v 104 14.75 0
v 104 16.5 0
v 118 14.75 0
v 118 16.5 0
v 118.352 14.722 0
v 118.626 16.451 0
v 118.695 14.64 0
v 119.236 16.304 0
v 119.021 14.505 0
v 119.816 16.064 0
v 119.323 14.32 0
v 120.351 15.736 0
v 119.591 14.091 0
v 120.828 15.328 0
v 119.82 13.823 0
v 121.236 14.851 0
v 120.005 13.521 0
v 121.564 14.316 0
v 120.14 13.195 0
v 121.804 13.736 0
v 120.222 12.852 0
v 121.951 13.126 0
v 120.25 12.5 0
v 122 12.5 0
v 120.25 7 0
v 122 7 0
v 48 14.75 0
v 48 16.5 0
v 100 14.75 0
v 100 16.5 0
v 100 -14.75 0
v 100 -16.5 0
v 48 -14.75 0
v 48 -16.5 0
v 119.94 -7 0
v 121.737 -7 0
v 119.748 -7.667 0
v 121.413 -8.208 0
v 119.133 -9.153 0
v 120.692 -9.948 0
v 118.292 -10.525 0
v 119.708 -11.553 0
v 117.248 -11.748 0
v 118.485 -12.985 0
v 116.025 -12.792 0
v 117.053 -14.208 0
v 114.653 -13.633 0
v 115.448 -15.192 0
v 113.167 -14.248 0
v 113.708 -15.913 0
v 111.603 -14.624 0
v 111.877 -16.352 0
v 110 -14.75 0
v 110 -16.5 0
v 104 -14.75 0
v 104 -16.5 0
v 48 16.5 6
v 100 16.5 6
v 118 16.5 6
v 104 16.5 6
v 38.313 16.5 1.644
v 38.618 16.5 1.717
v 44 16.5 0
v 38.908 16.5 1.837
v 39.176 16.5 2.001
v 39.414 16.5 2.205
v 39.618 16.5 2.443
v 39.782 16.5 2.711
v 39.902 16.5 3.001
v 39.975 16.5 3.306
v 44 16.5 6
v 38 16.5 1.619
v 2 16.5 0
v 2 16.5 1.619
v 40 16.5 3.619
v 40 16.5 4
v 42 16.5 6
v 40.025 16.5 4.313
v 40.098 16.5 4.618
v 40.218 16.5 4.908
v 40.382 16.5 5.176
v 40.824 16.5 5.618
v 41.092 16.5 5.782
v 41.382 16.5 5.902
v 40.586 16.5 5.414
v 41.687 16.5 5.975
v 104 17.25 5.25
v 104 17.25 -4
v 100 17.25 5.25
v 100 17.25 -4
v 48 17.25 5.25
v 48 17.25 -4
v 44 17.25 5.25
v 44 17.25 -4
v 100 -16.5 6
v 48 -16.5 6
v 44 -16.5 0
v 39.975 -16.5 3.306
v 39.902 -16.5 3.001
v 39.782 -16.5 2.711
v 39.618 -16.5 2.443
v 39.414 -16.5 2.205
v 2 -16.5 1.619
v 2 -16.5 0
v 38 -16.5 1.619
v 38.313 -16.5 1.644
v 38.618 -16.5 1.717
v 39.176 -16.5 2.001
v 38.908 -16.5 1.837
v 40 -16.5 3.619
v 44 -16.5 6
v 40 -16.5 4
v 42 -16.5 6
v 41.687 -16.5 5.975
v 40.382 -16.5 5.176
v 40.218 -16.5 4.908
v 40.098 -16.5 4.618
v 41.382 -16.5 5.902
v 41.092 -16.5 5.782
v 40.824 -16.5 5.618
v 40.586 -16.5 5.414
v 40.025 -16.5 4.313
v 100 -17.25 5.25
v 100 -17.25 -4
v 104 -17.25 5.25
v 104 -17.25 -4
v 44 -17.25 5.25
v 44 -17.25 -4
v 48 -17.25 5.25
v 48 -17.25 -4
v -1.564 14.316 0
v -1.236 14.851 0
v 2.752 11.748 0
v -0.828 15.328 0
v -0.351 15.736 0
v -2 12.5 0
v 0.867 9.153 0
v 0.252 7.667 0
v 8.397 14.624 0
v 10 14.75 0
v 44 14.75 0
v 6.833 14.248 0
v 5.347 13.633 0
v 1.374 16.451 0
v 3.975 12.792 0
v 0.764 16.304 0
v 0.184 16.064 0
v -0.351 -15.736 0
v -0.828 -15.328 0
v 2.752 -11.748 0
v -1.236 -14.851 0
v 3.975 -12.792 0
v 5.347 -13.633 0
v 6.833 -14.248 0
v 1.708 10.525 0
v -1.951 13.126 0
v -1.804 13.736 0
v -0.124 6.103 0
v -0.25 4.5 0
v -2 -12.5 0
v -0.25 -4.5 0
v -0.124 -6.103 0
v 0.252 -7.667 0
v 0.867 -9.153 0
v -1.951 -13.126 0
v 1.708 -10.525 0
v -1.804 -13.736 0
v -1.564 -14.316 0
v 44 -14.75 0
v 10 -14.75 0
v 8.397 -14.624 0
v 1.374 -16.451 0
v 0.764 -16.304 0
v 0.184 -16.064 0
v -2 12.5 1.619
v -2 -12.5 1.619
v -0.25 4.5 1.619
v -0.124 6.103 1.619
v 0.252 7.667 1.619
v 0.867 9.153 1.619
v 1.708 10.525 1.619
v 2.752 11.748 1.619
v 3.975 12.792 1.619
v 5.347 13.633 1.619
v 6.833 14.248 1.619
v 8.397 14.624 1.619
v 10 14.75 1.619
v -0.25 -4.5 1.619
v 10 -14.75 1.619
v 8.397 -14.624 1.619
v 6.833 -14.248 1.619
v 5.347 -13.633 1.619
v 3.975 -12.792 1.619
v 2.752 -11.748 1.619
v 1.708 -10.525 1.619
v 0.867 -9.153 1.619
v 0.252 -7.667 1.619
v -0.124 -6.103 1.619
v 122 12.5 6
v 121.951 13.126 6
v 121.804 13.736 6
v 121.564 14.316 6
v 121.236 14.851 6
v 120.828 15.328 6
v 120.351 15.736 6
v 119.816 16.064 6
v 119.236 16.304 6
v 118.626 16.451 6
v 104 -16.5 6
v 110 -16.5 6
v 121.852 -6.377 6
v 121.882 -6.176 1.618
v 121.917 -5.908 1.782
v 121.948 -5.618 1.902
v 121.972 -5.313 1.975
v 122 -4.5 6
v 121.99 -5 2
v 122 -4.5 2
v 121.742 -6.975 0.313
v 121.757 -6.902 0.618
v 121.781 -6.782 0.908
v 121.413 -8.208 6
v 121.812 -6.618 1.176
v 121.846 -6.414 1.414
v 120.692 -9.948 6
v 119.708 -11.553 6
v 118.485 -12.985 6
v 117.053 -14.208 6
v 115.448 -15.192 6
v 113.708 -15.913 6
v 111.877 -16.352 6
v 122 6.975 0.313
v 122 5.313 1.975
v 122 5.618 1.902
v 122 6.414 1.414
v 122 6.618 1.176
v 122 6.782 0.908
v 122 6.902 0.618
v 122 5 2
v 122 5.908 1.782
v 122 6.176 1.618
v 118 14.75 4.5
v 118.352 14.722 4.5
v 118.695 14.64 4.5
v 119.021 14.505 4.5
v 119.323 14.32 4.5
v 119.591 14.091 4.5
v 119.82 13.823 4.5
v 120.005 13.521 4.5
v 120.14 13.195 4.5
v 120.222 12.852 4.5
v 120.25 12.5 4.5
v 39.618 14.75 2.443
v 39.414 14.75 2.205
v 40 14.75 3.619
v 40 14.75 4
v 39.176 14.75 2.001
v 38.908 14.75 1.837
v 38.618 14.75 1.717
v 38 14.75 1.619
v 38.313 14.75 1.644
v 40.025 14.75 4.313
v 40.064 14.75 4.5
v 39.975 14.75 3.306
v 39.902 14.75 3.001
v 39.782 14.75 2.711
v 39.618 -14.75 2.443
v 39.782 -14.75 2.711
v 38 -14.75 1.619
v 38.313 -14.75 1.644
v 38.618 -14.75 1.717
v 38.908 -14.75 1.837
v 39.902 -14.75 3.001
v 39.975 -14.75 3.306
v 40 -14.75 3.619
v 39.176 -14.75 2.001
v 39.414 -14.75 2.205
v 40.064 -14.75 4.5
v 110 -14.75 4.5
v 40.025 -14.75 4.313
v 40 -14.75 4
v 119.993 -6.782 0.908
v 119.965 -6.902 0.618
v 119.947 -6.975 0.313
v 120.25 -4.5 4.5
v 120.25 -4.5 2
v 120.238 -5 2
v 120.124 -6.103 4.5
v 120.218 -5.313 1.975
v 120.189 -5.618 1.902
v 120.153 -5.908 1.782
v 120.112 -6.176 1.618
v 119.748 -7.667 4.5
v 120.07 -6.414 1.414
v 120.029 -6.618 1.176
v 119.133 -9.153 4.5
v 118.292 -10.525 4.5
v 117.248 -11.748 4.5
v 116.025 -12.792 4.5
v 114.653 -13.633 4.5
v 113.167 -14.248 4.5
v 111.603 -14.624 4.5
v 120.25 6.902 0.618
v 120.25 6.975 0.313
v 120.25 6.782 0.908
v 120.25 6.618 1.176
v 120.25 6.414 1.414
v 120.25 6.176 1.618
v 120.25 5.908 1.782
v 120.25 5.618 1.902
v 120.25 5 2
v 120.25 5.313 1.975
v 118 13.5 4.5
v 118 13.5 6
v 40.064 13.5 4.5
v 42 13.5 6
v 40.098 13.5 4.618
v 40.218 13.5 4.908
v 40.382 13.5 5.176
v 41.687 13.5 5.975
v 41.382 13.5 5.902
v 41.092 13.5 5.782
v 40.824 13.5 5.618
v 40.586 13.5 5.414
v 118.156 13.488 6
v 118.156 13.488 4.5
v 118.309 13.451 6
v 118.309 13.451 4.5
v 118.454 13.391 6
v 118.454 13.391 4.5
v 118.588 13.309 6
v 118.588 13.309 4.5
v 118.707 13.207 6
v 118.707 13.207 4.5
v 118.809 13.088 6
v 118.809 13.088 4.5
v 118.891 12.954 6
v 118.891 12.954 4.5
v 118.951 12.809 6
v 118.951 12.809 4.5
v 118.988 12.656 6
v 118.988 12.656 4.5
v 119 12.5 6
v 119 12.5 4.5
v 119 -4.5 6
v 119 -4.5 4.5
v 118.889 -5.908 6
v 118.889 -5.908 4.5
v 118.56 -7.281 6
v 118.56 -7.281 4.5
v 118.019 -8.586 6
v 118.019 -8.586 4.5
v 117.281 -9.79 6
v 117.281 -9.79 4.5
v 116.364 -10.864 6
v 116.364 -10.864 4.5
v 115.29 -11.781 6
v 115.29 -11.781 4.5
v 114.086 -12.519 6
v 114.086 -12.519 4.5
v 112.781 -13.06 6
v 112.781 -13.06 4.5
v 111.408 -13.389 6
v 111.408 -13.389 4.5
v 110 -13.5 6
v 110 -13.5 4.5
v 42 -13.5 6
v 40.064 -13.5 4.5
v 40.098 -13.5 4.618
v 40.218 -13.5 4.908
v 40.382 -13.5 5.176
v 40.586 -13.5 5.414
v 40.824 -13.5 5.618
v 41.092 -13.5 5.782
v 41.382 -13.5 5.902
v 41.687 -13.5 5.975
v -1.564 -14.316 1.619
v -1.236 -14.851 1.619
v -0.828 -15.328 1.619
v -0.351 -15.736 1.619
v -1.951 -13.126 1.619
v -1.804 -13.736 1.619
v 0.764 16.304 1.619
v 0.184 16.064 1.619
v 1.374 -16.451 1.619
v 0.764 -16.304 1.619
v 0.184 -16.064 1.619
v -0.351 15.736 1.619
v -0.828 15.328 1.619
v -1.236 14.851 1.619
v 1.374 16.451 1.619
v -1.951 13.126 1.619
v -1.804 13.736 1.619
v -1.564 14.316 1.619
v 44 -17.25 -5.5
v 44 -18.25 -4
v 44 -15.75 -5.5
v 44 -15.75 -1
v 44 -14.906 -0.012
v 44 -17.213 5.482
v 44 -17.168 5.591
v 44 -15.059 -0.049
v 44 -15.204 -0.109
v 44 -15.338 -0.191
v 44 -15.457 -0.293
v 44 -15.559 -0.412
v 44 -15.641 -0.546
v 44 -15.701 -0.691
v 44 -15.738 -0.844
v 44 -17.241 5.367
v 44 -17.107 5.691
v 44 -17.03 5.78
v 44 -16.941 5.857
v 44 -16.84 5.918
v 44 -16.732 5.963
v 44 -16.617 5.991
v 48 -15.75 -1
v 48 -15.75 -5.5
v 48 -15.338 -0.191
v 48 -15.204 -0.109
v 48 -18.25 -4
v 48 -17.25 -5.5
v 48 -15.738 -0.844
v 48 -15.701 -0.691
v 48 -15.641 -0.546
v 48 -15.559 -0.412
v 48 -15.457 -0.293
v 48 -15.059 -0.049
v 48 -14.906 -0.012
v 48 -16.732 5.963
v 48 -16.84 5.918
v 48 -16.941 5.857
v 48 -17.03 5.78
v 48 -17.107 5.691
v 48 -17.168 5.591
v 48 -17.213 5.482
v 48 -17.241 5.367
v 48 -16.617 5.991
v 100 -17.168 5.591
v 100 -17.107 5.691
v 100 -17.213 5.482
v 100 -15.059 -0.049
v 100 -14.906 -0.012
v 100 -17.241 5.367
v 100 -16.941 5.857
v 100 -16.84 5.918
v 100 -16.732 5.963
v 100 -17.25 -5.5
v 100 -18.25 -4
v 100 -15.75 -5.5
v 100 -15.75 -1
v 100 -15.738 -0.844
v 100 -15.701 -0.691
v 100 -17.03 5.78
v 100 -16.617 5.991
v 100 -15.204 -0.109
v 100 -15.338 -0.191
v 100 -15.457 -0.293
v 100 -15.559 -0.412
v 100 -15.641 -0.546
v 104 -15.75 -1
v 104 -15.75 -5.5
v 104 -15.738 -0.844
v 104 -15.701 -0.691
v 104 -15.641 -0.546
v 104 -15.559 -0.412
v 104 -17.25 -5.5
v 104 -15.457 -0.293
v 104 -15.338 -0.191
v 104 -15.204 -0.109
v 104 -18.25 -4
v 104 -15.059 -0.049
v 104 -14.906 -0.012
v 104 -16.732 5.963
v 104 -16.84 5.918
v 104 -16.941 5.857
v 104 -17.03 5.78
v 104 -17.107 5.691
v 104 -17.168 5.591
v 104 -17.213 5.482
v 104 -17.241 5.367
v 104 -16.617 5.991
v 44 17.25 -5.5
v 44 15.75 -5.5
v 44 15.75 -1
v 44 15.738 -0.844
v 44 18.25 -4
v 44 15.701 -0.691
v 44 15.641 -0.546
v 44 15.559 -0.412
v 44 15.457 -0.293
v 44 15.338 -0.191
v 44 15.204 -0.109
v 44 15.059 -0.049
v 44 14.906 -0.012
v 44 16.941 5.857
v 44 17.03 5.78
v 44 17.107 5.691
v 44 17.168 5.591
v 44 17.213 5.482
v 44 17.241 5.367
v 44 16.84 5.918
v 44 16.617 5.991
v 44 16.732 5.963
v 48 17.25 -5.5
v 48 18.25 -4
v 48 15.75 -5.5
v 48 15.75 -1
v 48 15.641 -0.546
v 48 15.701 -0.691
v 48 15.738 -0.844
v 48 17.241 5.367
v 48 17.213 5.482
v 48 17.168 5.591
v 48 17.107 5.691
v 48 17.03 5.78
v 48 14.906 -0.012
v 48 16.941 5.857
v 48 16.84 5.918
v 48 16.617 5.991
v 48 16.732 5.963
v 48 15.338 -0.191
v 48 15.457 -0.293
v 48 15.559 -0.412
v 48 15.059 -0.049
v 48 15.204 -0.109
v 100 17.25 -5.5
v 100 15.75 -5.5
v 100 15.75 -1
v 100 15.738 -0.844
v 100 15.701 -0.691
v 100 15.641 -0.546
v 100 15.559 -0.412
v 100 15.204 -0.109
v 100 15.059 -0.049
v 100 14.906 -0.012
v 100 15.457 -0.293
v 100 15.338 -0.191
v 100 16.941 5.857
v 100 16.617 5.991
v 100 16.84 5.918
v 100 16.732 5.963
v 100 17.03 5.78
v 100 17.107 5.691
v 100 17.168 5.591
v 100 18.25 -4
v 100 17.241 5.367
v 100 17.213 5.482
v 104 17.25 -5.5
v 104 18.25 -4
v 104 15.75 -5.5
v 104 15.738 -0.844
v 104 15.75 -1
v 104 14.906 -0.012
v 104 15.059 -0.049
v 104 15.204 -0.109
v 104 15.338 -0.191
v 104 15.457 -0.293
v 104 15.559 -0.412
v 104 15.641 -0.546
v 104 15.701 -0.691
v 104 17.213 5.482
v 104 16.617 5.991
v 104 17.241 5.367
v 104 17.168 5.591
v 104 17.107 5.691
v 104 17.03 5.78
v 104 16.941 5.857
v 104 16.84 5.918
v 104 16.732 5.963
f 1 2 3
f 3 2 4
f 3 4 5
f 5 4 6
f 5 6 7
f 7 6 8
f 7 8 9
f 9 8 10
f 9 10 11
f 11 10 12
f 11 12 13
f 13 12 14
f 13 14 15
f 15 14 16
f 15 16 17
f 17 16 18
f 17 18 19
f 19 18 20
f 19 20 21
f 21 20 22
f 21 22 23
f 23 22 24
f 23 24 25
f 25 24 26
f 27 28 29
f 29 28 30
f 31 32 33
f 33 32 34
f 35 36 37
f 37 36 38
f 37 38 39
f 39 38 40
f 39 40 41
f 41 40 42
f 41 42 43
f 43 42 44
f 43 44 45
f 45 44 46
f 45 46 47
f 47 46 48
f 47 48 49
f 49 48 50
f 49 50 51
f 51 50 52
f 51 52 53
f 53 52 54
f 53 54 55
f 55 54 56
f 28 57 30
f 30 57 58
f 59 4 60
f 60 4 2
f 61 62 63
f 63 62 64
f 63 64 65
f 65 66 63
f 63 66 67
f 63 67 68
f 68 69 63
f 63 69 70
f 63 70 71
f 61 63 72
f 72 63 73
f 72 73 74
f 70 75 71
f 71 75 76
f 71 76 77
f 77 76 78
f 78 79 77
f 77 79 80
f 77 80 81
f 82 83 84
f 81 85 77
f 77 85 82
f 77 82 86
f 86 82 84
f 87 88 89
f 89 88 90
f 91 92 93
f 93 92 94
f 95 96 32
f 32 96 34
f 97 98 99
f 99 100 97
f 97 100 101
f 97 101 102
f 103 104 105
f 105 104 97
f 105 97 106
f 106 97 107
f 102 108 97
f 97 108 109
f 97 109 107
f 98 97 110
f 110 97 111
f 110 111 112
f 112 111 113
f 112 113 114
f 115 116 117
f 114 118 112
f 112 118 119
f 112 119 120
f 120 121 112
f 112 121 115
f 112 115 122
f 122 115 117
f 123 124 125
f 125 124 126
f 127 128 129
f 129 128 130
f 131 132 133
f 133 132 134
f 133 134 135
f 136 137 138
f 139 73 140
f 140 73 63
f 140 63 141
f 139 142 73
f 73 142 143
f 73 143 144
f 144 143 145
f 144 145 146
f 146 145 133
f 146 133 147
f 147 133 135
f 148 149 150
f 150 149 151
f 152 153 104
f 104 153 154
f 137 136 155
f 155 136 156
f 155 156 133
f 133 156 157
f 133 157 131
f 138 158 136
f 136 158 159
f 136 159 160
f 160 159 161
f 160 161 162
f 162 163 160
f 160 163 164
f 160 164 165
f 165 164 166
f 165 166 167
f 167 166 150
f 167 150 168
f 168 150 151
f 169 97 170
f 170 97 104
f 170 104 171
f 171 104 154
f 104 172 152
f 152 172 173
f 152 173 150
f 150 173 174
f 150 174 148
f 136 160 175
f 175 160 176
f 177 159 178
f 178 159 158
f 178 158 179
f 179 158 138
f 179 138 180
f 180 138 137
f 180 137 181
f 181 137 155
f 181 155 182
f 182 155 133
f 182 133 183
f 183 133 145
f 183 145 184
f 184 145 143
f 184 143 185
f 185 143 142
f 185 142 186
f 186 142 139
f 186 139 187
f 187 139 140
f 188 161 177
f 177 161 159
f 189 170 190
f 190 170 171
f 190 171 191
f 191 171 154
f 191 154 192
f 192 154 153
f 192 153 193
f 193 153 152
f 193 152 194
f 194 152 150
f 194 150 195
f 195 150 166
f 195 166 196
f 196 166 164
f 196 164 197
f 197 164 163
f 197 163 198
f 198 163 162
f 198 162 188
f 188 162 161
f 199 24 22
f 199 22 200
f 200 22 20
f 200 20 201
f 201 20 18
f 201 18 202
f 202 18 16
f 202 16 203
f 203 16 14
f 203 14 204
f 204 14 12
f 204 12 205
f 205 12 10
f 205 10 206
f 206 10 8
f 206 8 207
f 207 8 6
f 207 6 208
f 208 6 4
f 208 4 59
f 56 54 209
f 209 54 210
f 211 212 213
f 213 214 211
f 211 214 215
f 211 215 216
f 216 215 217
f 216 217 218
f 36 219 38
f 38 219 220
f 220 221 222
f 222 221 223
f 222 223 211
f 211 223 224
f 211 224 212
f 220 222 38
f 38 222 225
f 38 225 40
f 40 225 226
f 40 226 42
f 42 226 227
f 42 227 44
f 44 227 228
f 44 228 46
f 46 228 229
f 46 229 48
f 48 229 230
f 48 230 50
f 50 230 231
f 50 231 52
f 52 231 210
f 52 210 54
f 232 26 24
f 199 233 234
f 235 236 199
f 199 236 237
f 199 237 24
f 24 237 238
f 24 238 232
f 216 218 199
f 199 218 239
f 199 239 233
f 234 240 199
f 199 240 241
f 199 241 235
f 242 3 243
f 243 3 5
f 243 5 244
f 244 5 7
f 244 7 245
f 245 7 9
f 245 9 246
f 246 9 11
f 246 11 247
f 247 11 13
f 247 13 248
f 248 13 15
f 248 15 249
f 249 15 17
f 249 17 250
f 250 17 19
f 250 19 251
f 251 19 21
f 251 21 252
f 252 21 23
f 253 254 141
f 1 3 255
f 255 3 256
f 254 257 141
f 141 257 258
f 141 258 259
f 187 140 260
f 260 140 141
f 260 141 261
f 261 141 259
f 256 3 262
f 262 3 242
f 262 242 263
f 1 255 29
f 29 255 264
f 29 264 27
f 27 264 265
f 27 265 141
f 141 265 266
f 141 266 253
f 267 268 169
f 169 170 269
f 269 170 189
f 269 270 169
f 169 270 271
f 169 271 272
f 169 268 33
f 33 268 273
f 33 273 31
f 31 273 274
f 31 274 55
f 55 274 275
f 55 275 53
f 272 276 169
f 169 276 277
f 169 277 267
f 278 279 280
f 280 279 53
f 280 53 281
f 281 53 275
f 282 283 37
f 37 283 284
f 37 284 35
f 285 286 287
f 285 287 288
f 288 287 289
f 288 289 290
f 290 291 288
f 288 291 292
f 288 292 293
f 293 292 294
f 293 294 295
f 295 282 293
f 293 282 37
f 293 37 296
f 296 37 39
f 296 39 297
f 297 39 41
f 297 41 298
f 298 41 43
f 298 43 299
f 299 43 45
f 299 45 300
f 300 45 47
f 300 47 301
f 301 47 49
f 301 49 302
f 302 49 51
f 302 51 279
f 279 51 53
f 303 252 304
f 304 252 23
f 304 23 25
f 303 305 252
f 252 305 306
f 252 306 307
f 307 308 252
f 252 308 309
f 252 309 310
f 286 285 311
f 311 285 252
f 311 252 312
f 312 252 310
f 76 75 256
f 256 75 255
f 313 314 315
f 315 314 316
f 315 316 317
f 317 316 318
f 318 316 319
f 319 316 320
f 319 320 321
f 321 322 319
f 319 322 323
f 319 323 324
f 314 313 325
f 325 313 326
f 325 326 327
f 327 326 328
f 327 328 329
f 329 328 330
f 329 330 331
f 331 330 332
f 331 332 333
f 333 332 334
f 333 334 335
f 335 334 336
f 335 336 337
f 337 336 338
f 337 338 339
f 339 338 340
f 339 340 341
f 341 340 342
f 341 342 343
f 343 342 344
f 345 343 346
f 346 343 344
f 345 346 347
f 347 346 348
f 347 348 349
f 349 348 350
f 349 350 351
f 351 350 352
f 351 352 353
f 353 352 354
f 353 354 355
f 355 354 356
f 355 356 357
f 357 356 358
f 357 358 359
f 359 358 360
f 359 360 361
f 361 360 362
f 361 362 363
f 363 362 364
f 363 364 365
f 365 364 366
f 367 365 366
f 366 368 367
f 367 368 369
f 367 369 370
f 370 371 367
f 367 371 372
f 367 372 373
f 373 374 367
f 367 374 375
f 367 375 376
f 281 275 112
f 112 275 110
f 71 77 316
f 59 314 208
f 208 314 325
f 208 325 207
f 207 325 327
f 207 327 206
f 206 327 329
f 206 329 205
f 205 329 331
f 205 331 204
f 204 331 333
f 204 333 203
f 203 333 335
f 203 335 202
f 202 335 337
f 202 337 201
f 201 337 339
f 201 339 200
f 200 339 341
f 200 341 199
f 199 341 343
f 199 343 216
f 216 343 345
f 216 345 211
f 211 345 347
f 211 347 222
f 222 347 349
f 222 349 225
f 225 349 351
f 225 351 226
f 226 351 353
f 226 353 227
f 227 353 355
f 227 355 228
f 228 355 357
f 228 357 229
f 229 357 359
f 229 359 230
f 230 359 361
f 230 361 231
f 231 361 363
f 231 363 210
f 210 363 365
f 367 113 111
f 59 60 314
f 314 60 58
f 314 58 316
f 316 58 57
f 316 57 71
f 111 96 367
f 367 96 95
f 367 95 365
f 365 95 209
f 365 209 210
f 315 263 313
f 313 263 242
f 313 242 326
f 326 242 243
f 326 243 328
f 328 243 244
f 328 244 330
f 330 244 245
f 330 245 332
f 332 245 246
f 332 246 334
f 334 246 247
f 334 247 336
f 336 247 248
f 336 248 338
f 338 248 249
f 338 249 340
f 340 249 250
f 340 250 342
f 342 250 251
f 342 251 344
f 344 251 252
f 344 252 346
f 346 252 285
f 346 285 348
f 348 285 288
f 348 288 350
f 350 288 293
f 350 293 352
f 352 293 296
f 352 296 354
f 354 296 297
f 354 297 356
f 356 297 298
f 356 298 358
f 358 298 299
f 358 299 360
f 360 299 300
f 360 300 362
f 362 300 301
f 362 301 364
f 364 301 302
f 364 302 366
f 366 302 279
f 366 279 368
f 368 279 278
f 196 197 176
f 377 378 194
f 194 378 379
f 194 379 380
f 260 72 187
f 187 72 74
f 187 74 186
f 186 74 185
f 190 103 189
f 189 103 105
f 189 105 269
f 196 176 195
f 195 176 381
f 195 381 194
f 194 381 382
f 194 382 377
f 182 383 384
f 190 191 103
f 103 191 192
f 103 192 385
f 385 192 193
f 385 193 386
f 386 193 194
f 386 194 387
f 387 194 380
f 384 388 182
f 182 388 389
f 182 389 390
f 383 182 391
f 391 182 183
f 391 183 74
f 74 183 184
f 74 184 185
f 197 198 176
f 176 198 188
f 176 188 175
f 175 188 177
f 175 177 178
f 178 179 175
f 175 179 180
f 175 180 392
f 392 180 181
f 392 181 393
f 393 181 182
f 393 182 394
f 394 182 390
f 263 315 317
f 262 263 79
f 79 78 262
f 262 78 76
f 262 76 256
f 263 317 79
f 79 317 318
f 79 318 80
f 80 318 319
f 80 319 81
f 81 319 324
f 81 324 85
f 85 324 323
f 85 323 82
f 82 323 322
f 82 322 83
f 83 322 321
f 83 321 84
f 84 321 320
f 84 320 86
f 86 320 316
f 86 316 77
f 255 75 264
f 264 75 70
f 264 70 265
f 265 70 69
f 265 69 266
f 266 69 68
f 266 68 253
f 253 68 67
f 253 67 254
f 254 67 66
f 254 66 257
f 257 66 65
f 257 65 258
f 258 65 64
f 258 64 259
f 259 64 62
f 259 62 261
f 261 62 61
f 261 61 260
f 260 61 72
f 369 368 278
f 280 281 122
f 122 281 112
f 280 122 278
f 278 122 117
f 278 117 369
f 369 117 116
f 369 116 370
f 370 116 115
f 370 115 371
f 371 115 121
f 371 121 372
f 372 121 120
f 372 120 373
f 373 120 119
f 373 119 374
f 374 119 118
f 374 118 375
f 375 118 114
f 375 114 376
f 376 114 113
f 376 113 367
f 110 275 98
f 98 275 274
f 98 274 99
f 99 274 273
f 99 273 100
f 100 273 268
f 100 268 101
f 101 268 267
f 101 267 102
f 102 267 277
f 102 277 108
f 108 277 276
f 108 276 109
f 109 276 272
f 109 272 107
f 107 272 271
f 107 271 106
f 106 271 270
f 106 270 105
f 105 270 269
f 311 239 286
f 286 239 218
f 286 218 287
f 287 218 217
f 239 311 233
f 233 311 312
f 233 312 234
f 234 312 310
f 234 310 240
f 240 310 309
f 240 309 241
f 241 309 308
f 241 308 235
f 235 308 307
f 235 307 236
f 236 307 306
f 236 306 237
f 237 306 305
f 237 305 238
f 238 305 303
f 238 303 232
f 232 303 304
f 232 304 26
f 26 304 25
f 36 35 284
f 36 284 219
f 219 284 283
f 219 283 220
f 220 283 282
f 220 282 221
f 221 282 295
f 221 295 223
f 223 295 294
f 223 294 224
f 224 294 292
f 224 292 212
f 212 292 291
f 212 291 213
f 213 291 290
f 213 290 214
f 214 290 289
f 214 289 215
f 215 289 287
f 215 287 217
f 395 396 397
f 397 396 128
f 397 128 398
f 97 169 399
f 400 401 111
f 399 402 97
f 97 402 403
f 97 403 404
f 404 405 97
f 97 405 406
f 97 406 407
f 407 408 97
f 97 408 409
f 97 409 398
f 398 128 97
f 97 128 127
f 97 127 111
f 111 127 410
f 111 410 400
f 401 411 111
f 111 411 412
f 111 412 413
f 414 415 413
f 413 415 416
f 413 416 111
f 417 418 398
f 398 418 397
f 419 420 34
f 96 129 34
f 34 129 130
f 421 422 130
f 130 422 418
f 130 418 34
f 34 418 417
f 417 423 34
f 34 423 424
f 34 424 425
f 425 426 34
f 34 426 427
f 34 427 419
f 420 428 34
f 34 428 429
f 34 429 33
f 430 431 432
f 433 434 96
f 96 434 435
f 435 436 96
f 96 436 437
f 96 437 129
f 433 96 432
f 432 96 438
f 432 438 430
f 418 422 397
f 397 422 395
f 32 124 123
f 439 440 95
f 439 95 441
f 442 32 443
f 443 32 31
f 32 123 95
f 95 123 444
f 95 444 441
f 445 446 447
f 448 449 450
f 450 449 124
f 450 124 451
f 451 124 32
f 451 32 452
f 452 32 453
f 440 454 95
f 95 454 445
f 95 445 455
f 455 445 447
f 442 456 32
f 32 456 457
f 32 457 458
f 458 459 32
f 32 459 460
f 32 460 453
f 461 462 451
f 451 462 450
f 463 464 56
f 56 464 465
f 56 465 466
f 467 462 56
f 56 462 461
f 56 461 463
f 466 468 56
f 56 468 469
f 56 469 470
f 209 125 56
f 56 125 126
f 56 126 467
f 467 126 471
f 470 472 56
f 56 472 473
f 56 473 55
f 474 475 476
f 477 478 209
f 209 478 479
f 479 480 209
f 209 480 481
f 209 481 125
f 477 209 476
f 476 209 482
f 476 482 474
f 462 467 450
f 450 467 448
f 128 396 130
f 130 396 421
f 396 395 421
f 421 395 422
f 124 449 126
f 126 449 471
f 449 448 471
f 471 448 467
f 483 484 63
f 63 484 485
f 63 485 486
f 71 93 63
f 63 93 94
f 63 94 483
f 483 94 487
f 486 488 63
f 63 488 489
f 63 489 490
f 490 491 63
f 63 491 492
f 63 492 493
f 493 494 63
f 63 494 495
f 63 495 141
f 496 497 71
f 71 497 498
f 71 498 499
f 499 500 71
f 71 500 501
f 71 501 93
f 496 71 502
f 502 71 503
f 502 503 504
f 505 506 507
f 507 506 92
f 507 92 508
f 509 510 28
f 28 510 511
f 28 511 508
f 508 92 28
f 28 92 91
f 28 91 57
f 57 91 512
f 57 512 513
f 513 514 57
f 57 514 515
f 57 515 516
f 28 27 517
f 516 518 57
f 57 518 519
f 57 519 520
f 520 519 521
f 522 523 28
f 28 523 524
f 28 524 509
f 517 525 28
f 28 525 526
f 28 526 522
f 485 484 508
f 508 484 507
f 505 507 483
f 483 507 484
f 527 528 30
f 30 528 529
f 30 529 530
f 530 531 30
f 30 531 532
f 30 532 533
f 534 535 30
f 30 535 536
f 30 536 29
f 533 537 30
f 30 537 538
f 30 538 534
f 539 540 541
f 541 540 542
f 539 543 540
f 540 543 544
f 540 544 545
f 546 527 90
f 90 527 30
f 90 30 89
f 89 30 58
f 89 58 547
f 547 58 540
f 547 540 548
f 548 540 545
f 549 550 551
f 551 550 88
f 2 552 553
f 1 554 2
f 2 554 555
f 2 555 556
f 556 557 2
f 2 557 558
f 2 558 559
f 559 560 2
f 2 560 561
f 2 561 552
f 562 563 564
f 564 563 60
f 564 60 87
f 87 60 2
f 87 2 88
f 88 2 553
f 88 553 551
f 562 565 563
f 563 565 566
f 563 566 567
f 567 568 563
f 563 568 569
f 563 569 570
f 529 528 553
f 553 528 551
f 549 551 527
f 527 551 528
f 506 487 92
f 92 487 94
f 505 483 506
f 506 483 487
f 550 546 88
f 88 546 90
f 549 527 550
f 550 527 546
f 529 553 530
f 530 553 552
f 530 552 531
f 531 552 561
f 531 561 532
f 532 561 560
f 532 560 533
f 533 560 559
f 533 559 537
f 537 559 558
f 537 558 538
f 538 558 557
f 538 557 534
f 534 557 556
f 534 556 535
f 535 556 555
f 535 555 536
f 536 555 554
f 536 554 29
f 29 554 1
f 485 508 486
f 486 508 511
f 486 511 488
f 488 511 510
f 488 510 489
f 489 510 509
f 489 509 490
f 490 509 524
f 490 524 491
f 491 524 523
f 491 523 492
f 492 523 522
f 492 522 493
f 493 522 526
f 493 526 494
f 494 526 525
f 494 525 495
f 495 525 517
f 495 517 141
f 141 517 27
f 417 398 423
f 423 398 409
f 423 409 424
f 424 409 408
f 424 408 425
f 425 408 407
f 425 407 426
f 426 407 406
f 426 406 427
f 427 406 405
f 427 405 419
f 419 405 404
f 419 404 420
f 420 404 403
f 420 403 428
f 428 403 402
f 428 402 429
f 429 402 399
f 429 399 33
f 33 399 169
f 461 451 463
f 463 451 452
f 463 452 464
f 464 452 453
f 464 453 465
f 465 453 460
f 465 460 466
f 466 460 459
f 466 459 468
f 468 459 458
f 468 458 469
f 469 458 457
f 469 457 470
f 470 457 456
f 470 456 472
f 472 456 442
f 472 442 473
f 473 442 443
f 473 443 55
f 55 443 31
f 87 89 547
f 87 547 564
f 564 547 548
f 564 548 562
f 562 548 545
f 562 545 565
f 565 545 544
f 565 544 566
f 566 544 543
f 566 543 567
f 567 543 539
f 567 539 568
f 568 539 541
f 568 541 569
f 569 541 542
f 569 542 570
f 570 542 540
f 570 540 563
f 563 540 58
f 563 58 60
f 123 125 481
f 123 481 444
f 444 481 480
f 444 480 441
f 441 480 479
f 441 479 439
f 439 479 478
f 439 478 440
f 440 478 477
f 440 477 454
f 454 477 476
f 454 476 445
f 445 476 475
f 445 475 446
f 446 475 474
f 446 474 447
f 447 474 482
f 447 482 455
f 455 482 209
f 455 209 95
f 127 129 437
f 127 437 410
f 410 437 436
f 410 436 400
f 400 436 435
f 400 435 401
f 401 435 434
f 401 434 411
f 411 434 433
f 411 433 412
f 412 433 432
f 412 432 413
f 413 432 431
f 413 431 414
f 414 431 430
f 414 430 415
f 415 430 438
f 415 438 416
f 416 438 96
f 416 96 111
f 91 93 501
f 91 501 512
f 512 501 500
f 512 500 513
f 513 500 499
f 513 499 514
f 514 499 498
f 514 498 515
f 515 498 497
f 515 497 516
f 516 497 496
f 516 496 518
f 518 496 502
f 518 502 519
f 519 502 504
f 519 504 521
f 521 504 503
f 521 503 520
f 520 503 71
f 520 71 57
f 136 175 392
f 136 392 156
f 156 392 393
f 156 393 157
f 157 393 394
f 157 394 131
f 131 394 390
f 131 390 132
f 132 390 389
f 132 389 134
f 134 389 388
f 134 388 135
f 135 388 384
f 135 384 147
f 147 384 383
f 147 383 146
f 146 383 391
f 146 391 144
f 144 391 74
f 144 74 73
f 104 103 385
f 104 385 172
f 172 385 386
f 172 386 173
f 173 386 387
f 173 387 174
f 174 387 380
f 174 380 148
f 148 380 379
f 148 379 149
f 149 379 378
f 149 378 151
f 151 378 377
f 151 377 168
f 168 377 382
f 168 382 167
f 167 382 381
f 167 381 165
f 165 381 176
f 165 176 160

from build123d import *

# Parameters (mm, degrees)
BOSS_EXTRUDE2_THICKNESS_OF_TC_PCB_DEPTH = 4.5
BOSS_EXTRUDE3_RETAINING_TOP_DEPTH       = 1.5
CUT_EXTRUDE1_START                      = -2.881
CUT_EXTRUDE1_EXPOSED_TC_FRONT_DEPTH     = 2.881
FILLET1_R                               = 2
SKETCH7_W                               = 2
SKETCH7_H                               = 14
CUT_EXTRUDE1_USBC_CUTOUT_DEPTH          = 5
FILLET3_R                               = 2
SKETCH8_W                               = 4
SKETCH8_H                               = 1.5
BOSS_EXTRUDE5_SNAP_POSTS_DEPTH          = 5.5
BOSS_EXTRUDE6_SNAP_NOTCH_1_DEPTH        = 4
BOSS_EXTRUDE7_SNAP_NOTCH_2_DEPTH        = 4
SKETCH11_W                              = 4
SKETCH11_H                              = 2.5
BOSS_EXTRUDE1_SNAP_BUMPS_DEPTH          = 6
FILLET6_R                               = 1
FILLET7_R                               = 0.75
BOSS_EXTRUDE1_START                     = -1.619
BOSS_EXTRUDE1_DEPTH                     = 1.619
FILLET8_R                               = 4


with BuildPart() as part:
    # Sketch3 → Boss-Extrude2 - thickness of TC + PCB (new body)
    with BuildSketch(Plane.XY):
        with BuildLine():
            Line((122, -4.5), (122, 12.5))
            ThreePointArc((122, 12.5), (120.828427125, 15.328427125), (118, 16.5))
            Line((118, 16.5), (10, 16.5))
            ThreePointArc((10, 16.5), (1.514718626, 12.985281374), (-2, 4.5))
            Line((-2, 4.5), (-2, -4.5))
            ThreePointArc((-2, -4.5), (1.514718626, -12.985281374), (10, -16.5))
            Line((10, -16.5), (110, -16.5))
            ThreePointArc((110, -16.5), (118.485281374, -12.985281374), (122, -4.5))
        make_face()
        with BuildLine():
            Line((118, 14.75), (10, 14.75))
            ThreePointArc((10, 14.75), (2.752155493, 11.747844507), (-0.25, 4.5))
            Line((-0.25, 4.5), (-0.25, -4.5))
            ThreePointArc((-0.25, -4.5), (2.752155493, -11.747844507), (10, -14.75))
            Line((10, -14.75), (110, -14.75))
            ThreePointArc((110, -14.75), (117.247844507, -11.747844507), (120.25, -4.5))
            Line((120.25, -4.5), (120.25, 12.5))
            ThreePointArc((120.25, 12.5), (119.590990258, 14.090990258), (118, 14.75))
        make_face(mode=Mode.SUBTRACT)
    extrude(amount=BOSS_EXTRUDE2_THICKNESS_OF_TC_PCB_DEPTH)

    # Sketch4 → Boss-Extrude3 - retaining top (add)
    with BuildSketch(Plane.XY.offset(4.5)):
        with BuildLine():
            Line((40, 13.5), (118, 13.5))
            ThreePointArc((118, 13.5), (118.707106781, 13.207106781), (119, 12.5))
            Line((119, 12.5), (119, -4.5))
            ThreePointArc((119, -4.5), (116.363961031, -10.863961031), (110, -13.5))
            Line((110, -13.5), (40, -13.5))
            Line((40, -13.5), (40, -16.5))
            Line((40, -16.5), (110, -16.5))
            ThreePointArc((110, -16.5), (118.485281374, -12.985281374), (122, -4.5))
            Line((122, -4.5), (122, 12.5))
            ThreePointArc((122, 12.5), (120.828427125, 15.328427125), (118, 16.5))
            Line((118, 16.5), (40, 16.5))
            Line((40, 16.5), (40, 13.5))
        make_face()
    extrude(amount=BOSS_EXTRUDE3_RETAINING_TOP_DEPTH)

    # Sketch5 → Cut-Extrude1 - exposed TC front (cut)
    with BuildSketch(Plane.XY.offset(4.5).offset(CUT_EXTRUDE1_START)):
        with BuildLine():
            Line((40, -16.5), (40, -14.75))
            Line((40, -14.75), (10, -14.75))
            ThreePointArc((10, -14.75), (2.752155493, -11.747844507), (-0.25, -4.5))
            Line((-0.25, -4.5), (-0.25, 4.5))
            ThreePointArc((-0.25, 4.5), (2.752155493, 11.747844507), (10, 14.75))
            Line((10, 14.75), (40, 14.75))
            Line((40, 14.75), (40, 16.5))
            Line((40, 16.5), (10, 16.5))
            ThreePointArc((10, 16.5), (1.514718626, 12.985281374), (-2, 4.5))
            Line((-2, 4.5), (-2, -4.5))
            ThreePointArc((-2, -4.5), (1.514718626, -12.985281374), (10, -16.5))
            Line((10, -16.5), (40, -16.5))
        make_face()
    extrude(amount=CUT_EXTRUDE1_EXPOSED_TC_FRONT_DEPTH, mode=Mode.SUBTRACT)

    # Fillet1
    fillet1_edges = [part.edges().sort_by_distance(p)[0] for p in [
        (40, 15, 6),
        (40, 15.625, 1.619),
        (40, -15, 6),
        (40, -15.625, 1.619),
    ]]
    fillet(fillet1_edges, radius=FILLET1_R)

    # Sketch7 → Cut-Extrude1 - USBC cutout (cut)
    with BuildSketch(Plane(origin=(122, 0, 0), x_dir=(0, 0, -1), z_dir=(1, 0, 0))):
        with Locations((-1, 0)):
            Rectangle(SKETCH7_W, SKETCH7_H)
    extrude(amount=-CUT_EXTRUDE1_USBC_CUTOUT_DEPTH, mode=Mode.SUBTRACT)

    # Fillet3
    fillet3_edges = [part.edges().sort_by_distance(p)[0] for p in [
        (121.125, 7, 2),
        (120.838571135, -7, 2),
    ]]
    fillet(fillet3_edges, radius=FILLET3_R - 0.0001)  # a hair under: the kernel refuses the full size

    # Sketch8 → Boss-Extrude5 - snap posts (add)
    with BuildSketch(Plane(origin=(0, 0, 0), x_dir=(-1, 0, 0), z_dir=(0, 0, -1))):
        with Locations((-46, -16.5)):
            Rectangle(SKETCH8_W, SKETCH8_H)
        with Locations((-102, -16.5)):
            Rectangle(SKETCH8_W, SKETCH8_H)
    boss_extrude5_snap_posts = extrude(amount=BOSS_EXTRUDE5_SNAP_POSTS_DEPTH)

    # Sketch9 → Boss-Extrude6 - snap notch 1 (add)
    with BuildSketch(Plane.ZY.offset(-44)):
        Polygon((-5.5, -17.25), (-4, -18.25), (-4, -17.25), align=None)
    boss_extrude6_snap_notch_1 = extrude(amount=-BOSS_EXTRUDE6_SNAP_NOTCH_1_DEPTH)

    # Sketch10 → Boss-Extrude7 - snap notch 2 (add)
    with BuildSketch(Plane.ZY.offset(-100)):
        Polygon((-4, -18.25), (-4, -17.25), (-5.5, -17.25), align=None)
    boss_extrude7_snap_notch_2 = extrude(amount=-BOSS_EXTRUDE7_SNAP_NOTCH_2_DEPTH)

    # Sketch11 → Boss-Extrude1 - snap bumps (add)
    with BuildSketch(Plane(origin=(0, 0, 0), x_dir=(-1, 0, 0), z_dir=(0, 0, -1))):
        with Locations((-46, -16)):
            Rectangle(SKETCH11_W, SKETCH11_H)
        with Locations((-102, -16)):
            Rectangle(SKETCH11_W, SKETCH11_H)
    boss_extrude1_snap_bumps = extrude(amount=-BOSS_EXTRUDE1_SNAP_BUMPS_DEPTH)

    # Mirror1: Boss-Extrude5 - snap posts, Boss-Extrude6 - snap notch 1, Boss-Extrude7 - snap notch 2, Boss-Extrude1 - snap bumps across plane
    add(boss_extrude5_snap_posts.mirror(Plane.ZX))
    add(boss_extrude6_snap_notch_1.mirror(Plane.ZX))
    add(boss_extrude7_snap_notch_2.mirror(Plane.ZX))
    add(boss_extrude1_snap_bumps.mirror(Plane.ZX))

    # Fillet6
    fillet6_edges = [part.edges().sort_by_distance(p)[0] for p in [
        (46, -15.75, 0),
        (102, -15.75, 0),
        (46, 15.75, 0),
        (102, 15.75, 0),
    ]]
    fillet(fillet6_edges, radius=FILLET6_R - 0.0001)  # a hair under: the kernel refuses the full size

    # Fillet7
    fillet7_edges = [part.edges().sort_by_distance(p)[0] for p in [
        (46, -17.25, 6),
        (102, -17.25, 6),
        (46, 17.25, 6),
        (102, 17.25, 6),
    ]]
    fillet(fillet7_edges, radius=FILLET7_R)

    # Sketch13 → Boss-Extrude1 (add)
    with BuildSketch(Plane.XY.offset(1.619).offset(BOSS_EXTRUDE1_START)):
        with BuildLine():
            Line((-2, 4.5), (-2, 16.5))
            Line((-2, 16.5), (10, 16.5))
            ThreePointArc((10, 16.5), (1.514718626, 12.985281374), (-2, 4.5))
        make_face()
        with BuildLine():
            Line((-2, -4.5), (-2, -16.5))
            Line((-2, -16.5), (10, -16.5))
            ThreePointArc((10, -16.5), (1.514718626, -12.985281374), (-2, -4.5))
        make_face()
    extrude(amount=BOSS_EXTRUDE1_DEPTH)

    # Fillet8
    fillet8_edges = [part.edges().sort_by_distance(p)[0] for p in [
        (-2, 16.5, 0.8095),
        (-2, -16.5, 0.8095),
    ]]
    fillet(fillet8_edges, radius=FILLET8_R)


solid = part.part
